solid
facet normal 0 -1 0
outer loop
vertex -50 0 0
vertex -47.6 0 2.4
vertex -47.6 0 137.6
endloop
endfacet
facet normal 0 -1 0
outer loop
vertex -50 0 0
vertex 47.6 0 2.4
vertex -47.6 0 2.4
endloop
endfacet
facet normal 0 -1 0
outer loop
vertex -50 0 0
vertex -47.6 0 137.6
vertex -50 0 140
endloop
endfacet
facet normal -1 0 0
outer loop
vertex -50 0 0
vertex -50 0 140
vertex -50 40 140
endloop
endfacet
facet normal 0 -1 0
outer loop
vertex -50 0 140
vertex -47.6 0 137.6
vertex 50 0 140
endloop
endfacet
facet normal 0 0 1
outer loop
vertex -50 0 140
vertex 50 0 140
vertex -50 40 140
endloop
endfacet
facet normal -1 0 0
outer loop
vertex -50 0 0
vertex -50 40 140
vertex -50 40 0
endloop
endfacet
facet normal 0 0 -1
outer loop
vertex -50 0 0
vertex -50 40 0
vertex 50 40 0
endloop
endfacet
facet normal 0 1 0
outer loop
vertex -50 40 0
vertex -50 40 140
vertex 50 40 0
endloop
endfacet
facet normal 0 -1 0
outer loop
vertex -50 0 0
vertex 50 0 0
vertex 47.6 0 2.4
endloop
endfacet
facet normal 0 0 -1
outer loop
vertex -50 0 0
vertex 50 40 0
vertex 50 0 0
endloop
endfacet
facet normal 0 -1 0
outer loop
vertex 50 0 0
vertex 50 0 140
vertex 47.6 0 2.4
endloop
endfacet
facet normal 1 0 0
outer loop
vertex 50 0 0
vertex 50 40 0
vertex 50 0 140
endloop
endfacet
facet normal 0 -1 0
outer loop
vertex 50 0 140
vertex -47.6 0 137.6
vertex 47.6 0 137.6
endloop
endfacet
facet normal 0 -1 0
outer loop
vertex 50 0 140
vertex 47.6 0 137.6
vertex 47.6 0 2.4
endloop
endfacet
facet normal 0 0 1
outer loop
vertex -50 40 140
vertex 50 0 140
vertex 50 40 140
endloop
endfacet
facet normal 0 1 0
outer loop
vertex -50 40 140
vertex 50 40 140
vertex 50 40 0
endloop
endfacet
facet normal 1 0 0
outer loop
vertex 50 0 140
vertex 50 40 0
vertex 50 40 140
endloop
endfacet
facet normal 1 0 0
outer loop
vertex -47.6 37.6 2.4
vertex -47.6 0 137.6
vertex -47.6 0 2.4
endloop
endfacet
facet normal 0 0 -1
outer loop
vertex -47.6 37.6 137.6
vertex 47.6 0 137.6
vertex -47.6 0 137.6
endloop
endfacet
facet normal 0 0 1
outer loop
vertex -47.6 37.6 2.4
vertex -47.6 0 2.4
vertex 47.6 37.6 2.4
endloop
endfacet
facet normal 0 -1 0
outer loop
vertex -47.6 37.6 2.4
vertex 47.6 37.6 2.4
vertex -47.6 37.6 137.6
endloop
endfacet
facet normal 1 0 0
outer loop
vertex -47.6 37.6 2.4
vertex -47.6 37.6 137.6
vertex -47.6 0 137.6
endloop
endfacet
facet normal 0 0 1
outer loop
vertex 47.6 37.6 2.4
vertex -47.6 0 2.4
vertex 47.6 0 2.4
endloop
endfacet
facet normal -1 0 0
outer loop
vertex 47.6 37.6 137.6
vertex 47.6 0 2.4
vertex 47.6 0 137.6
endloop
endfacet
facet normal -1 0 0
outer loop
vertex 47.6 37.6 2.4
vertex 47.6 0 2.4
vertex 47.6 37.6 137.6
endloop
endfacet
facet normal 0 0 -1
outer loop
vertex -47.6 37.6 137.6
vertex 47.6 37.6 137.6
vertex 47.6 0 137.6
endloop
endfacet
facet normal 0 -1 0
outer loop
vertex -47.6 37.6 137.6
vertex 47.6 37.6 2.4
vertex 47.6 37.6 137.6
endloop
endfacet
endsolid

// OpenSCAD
// file: util.scad
// Shared helper modules for node-dock parts.
include <params.scad>

// Boss for a heat-set insert. h = total boss height, with insert pocket
// drilled from the top.
module insert_boss(h = 8) {
    difference() {
        cylinder(h = h, d = M3_INSERT_D + 2 * WALL);
        translate([0, 0, h - M3_INSERT_H])
            cylinder(h = M3_INSERT_H + 0.1, d = M3_INSERT_D);
    }
}

// Through-hole for M3 clearance.
module m3_through(h) {
    cylinder(h = h + 0.2, d = M3_CLEAR, center = false);
}

// Alignment peg (printed solid).
module peg(h = 8) {
    cylinder(h = h, d = PEG_D);
}

// Alignment-peg socket.
module peg_hole(h = 8) {
    cylinder(h = h + 0.1, d = PEG_D + 0.2);
}

// Rounded rectangle (2D) for shells.
module rrect(x, y, r = 3) {
    hull() for (sx = [-1, 1], sy = [-1, 1])
        translate([sx * (x/2 - r), sy * (y/2 - r), 0]) circle(r = r);
}

// Servo cavity (rectangular box, centered XY, base at z=0).
module servo_cavity(x, y, z) {
    translate([-x/2, -y/2, 0]) cube([x, y, z + 0.1]);
}
// file: params.scad
// Shared parameters for node-dock shell.
// All dimensions in millimeters. Sourced from
//   ../../bodylink/sim/bodies/dock_humanoid.xml
// where they are in meters.

// ── Global tolerances ────────────────────────────────────────────────
WALL        = 2.4;   // 3 perimeters at 0.4 mm nozzle / 0.2 mm layer
FIT         = 0.3;   // press-fit clearance on servo cavities
PHONE_FIT   = 0.5;   // clearance around phone outline
M3_CLEAR    = 3.3;   // M3 clearance hole
M3_INSERT_D = 5.0;   // heat-set insert outer Ø
M3_INSERT_H = 5.0;   // heat-set insert depth
PEG_D       = 4.0;   // alignment peg Ø (peg) / hole Ø is PEG_D + 0.2

$fn = 64;            // smooth curves by default

// ── Base ─────────────────────────────────────────────────────────────
BASE_D      = 240;
BASE_H      = 50;
BASE_SPLIT  = 25;    // halve the disc horizontally
BASE_FLANGE_D = 90;
BASE_FLANGE_H = 10;

// ── Leg shaft ────────────────────────────────────────────────────────
LEG_D       = 60;
LEG_H       = 70;
LEG_BORE    = 16;    // cable channel Ø

// ── Trunk ────────────────────────────────────────────────────────────
TRUNK_X     = 100;
TRUNK_Y     = 80;
TRUNK_Z     = 140;

// ── Neck stub (enlarged from XML 30³ to fit MG996R + MG90S stacked) ──
NECK_X      = 30;
NECK_Y      = 40;
NECK_Z      = 40;

// ── Head / phone cradle ──────────────────────────────────────────────
// XML head_plate visible face: 200 × 100 mm (landscape), 20 mm thick
// XML head_frame_back: 216 × 26 × 114 mm
HEAD_X      = 216;
HEAD_Y      = 26;
HEAD_Z      = 114;
PHONE_X     = 165;   // typical 6.1" phone outline; iPhone 15-class
PHONE_Y     = 9;     // phone thickness
PHONE_Z     = 76;
BEZEL_LIP   = 6;     // visible-face overlap on the front bezel

// ── Shoulder bracket ─────────────────────────────────────────────────
SHB_X       = 36;
SHB_Y       = 28;
SHB_Z       = 28;

// ── Arm ──────────────────────────────────────────────────────────────
ARM_D       = 26;
ARM_L       = 60;

// ── Servo cavities (datasheet + FIT clearance) ───────────────────────
// DS3218 standard servo body: 40 × 20 × 38.5 + cable boss
DS3218_X = 40.0 + FIT;
DS3218_Y = 20.0 + FIT;
DS3218_Z = 38.5 + FIT;
DS3218_EAR_W = 54.5;   // mounting-ear span
DS3218_EAR_T = 2.5;

// MG996R: 40.7 × 19.7 × 42.9
MG996R_X = 40.7 + FIT;
MG996R_Y = 19.7 + FIT;
MG996R_Z = 42.9 + FIT;

// MG90S / SG90: 22.8 × 12.2 × 28.5 (MG90S body height includes flange)
MG90S_X = 22.8 + FIT;
MG90S_Y = 12.2 + FIT;
MG90S_Z = 28.5 + FIT;
// main file
// Trunk — front shell. Mirror of trunk_back, no internal mounts.
include <params.scad>
use <util.scad>

module trunk_front() {
    difference() {
        translate([-TRUNK_X/2, 0, 0])
            cube([TRUNK_X, TRUNK_Y/2, TRUNK_Z]);
        // Hollow.
        translate([-TRUNK_X/2 + WALL, -0.1, WALL])
            cube([TRUNK_X - 2 * WALL,
                  TRUNK_Y/2 - WALL + 0.1,
                  TRUNK_Z - 2 * WALL]);

        // Rim clearance holes for the back-shell inserts.
        for (z = [10, TRUNK_Z - 10])
            for (sx = [-1, 1])
                translate([sx * (TRUNK_X/2 - 5), 0, z])
                    rotate([-90, 0, 0])
                        cylinder(h = WALL + 1, d = M3_CLEAR);

        // Alignment-peg holes.
        for (sx = [-1, 1])
            translate([sx * (TRUNK_X/2 - 5), 0, TRUNK_Z/2])
                rotate([-90, 0, 0]) peg_hole(h = 6.2);
    }
}

trunk_front();
